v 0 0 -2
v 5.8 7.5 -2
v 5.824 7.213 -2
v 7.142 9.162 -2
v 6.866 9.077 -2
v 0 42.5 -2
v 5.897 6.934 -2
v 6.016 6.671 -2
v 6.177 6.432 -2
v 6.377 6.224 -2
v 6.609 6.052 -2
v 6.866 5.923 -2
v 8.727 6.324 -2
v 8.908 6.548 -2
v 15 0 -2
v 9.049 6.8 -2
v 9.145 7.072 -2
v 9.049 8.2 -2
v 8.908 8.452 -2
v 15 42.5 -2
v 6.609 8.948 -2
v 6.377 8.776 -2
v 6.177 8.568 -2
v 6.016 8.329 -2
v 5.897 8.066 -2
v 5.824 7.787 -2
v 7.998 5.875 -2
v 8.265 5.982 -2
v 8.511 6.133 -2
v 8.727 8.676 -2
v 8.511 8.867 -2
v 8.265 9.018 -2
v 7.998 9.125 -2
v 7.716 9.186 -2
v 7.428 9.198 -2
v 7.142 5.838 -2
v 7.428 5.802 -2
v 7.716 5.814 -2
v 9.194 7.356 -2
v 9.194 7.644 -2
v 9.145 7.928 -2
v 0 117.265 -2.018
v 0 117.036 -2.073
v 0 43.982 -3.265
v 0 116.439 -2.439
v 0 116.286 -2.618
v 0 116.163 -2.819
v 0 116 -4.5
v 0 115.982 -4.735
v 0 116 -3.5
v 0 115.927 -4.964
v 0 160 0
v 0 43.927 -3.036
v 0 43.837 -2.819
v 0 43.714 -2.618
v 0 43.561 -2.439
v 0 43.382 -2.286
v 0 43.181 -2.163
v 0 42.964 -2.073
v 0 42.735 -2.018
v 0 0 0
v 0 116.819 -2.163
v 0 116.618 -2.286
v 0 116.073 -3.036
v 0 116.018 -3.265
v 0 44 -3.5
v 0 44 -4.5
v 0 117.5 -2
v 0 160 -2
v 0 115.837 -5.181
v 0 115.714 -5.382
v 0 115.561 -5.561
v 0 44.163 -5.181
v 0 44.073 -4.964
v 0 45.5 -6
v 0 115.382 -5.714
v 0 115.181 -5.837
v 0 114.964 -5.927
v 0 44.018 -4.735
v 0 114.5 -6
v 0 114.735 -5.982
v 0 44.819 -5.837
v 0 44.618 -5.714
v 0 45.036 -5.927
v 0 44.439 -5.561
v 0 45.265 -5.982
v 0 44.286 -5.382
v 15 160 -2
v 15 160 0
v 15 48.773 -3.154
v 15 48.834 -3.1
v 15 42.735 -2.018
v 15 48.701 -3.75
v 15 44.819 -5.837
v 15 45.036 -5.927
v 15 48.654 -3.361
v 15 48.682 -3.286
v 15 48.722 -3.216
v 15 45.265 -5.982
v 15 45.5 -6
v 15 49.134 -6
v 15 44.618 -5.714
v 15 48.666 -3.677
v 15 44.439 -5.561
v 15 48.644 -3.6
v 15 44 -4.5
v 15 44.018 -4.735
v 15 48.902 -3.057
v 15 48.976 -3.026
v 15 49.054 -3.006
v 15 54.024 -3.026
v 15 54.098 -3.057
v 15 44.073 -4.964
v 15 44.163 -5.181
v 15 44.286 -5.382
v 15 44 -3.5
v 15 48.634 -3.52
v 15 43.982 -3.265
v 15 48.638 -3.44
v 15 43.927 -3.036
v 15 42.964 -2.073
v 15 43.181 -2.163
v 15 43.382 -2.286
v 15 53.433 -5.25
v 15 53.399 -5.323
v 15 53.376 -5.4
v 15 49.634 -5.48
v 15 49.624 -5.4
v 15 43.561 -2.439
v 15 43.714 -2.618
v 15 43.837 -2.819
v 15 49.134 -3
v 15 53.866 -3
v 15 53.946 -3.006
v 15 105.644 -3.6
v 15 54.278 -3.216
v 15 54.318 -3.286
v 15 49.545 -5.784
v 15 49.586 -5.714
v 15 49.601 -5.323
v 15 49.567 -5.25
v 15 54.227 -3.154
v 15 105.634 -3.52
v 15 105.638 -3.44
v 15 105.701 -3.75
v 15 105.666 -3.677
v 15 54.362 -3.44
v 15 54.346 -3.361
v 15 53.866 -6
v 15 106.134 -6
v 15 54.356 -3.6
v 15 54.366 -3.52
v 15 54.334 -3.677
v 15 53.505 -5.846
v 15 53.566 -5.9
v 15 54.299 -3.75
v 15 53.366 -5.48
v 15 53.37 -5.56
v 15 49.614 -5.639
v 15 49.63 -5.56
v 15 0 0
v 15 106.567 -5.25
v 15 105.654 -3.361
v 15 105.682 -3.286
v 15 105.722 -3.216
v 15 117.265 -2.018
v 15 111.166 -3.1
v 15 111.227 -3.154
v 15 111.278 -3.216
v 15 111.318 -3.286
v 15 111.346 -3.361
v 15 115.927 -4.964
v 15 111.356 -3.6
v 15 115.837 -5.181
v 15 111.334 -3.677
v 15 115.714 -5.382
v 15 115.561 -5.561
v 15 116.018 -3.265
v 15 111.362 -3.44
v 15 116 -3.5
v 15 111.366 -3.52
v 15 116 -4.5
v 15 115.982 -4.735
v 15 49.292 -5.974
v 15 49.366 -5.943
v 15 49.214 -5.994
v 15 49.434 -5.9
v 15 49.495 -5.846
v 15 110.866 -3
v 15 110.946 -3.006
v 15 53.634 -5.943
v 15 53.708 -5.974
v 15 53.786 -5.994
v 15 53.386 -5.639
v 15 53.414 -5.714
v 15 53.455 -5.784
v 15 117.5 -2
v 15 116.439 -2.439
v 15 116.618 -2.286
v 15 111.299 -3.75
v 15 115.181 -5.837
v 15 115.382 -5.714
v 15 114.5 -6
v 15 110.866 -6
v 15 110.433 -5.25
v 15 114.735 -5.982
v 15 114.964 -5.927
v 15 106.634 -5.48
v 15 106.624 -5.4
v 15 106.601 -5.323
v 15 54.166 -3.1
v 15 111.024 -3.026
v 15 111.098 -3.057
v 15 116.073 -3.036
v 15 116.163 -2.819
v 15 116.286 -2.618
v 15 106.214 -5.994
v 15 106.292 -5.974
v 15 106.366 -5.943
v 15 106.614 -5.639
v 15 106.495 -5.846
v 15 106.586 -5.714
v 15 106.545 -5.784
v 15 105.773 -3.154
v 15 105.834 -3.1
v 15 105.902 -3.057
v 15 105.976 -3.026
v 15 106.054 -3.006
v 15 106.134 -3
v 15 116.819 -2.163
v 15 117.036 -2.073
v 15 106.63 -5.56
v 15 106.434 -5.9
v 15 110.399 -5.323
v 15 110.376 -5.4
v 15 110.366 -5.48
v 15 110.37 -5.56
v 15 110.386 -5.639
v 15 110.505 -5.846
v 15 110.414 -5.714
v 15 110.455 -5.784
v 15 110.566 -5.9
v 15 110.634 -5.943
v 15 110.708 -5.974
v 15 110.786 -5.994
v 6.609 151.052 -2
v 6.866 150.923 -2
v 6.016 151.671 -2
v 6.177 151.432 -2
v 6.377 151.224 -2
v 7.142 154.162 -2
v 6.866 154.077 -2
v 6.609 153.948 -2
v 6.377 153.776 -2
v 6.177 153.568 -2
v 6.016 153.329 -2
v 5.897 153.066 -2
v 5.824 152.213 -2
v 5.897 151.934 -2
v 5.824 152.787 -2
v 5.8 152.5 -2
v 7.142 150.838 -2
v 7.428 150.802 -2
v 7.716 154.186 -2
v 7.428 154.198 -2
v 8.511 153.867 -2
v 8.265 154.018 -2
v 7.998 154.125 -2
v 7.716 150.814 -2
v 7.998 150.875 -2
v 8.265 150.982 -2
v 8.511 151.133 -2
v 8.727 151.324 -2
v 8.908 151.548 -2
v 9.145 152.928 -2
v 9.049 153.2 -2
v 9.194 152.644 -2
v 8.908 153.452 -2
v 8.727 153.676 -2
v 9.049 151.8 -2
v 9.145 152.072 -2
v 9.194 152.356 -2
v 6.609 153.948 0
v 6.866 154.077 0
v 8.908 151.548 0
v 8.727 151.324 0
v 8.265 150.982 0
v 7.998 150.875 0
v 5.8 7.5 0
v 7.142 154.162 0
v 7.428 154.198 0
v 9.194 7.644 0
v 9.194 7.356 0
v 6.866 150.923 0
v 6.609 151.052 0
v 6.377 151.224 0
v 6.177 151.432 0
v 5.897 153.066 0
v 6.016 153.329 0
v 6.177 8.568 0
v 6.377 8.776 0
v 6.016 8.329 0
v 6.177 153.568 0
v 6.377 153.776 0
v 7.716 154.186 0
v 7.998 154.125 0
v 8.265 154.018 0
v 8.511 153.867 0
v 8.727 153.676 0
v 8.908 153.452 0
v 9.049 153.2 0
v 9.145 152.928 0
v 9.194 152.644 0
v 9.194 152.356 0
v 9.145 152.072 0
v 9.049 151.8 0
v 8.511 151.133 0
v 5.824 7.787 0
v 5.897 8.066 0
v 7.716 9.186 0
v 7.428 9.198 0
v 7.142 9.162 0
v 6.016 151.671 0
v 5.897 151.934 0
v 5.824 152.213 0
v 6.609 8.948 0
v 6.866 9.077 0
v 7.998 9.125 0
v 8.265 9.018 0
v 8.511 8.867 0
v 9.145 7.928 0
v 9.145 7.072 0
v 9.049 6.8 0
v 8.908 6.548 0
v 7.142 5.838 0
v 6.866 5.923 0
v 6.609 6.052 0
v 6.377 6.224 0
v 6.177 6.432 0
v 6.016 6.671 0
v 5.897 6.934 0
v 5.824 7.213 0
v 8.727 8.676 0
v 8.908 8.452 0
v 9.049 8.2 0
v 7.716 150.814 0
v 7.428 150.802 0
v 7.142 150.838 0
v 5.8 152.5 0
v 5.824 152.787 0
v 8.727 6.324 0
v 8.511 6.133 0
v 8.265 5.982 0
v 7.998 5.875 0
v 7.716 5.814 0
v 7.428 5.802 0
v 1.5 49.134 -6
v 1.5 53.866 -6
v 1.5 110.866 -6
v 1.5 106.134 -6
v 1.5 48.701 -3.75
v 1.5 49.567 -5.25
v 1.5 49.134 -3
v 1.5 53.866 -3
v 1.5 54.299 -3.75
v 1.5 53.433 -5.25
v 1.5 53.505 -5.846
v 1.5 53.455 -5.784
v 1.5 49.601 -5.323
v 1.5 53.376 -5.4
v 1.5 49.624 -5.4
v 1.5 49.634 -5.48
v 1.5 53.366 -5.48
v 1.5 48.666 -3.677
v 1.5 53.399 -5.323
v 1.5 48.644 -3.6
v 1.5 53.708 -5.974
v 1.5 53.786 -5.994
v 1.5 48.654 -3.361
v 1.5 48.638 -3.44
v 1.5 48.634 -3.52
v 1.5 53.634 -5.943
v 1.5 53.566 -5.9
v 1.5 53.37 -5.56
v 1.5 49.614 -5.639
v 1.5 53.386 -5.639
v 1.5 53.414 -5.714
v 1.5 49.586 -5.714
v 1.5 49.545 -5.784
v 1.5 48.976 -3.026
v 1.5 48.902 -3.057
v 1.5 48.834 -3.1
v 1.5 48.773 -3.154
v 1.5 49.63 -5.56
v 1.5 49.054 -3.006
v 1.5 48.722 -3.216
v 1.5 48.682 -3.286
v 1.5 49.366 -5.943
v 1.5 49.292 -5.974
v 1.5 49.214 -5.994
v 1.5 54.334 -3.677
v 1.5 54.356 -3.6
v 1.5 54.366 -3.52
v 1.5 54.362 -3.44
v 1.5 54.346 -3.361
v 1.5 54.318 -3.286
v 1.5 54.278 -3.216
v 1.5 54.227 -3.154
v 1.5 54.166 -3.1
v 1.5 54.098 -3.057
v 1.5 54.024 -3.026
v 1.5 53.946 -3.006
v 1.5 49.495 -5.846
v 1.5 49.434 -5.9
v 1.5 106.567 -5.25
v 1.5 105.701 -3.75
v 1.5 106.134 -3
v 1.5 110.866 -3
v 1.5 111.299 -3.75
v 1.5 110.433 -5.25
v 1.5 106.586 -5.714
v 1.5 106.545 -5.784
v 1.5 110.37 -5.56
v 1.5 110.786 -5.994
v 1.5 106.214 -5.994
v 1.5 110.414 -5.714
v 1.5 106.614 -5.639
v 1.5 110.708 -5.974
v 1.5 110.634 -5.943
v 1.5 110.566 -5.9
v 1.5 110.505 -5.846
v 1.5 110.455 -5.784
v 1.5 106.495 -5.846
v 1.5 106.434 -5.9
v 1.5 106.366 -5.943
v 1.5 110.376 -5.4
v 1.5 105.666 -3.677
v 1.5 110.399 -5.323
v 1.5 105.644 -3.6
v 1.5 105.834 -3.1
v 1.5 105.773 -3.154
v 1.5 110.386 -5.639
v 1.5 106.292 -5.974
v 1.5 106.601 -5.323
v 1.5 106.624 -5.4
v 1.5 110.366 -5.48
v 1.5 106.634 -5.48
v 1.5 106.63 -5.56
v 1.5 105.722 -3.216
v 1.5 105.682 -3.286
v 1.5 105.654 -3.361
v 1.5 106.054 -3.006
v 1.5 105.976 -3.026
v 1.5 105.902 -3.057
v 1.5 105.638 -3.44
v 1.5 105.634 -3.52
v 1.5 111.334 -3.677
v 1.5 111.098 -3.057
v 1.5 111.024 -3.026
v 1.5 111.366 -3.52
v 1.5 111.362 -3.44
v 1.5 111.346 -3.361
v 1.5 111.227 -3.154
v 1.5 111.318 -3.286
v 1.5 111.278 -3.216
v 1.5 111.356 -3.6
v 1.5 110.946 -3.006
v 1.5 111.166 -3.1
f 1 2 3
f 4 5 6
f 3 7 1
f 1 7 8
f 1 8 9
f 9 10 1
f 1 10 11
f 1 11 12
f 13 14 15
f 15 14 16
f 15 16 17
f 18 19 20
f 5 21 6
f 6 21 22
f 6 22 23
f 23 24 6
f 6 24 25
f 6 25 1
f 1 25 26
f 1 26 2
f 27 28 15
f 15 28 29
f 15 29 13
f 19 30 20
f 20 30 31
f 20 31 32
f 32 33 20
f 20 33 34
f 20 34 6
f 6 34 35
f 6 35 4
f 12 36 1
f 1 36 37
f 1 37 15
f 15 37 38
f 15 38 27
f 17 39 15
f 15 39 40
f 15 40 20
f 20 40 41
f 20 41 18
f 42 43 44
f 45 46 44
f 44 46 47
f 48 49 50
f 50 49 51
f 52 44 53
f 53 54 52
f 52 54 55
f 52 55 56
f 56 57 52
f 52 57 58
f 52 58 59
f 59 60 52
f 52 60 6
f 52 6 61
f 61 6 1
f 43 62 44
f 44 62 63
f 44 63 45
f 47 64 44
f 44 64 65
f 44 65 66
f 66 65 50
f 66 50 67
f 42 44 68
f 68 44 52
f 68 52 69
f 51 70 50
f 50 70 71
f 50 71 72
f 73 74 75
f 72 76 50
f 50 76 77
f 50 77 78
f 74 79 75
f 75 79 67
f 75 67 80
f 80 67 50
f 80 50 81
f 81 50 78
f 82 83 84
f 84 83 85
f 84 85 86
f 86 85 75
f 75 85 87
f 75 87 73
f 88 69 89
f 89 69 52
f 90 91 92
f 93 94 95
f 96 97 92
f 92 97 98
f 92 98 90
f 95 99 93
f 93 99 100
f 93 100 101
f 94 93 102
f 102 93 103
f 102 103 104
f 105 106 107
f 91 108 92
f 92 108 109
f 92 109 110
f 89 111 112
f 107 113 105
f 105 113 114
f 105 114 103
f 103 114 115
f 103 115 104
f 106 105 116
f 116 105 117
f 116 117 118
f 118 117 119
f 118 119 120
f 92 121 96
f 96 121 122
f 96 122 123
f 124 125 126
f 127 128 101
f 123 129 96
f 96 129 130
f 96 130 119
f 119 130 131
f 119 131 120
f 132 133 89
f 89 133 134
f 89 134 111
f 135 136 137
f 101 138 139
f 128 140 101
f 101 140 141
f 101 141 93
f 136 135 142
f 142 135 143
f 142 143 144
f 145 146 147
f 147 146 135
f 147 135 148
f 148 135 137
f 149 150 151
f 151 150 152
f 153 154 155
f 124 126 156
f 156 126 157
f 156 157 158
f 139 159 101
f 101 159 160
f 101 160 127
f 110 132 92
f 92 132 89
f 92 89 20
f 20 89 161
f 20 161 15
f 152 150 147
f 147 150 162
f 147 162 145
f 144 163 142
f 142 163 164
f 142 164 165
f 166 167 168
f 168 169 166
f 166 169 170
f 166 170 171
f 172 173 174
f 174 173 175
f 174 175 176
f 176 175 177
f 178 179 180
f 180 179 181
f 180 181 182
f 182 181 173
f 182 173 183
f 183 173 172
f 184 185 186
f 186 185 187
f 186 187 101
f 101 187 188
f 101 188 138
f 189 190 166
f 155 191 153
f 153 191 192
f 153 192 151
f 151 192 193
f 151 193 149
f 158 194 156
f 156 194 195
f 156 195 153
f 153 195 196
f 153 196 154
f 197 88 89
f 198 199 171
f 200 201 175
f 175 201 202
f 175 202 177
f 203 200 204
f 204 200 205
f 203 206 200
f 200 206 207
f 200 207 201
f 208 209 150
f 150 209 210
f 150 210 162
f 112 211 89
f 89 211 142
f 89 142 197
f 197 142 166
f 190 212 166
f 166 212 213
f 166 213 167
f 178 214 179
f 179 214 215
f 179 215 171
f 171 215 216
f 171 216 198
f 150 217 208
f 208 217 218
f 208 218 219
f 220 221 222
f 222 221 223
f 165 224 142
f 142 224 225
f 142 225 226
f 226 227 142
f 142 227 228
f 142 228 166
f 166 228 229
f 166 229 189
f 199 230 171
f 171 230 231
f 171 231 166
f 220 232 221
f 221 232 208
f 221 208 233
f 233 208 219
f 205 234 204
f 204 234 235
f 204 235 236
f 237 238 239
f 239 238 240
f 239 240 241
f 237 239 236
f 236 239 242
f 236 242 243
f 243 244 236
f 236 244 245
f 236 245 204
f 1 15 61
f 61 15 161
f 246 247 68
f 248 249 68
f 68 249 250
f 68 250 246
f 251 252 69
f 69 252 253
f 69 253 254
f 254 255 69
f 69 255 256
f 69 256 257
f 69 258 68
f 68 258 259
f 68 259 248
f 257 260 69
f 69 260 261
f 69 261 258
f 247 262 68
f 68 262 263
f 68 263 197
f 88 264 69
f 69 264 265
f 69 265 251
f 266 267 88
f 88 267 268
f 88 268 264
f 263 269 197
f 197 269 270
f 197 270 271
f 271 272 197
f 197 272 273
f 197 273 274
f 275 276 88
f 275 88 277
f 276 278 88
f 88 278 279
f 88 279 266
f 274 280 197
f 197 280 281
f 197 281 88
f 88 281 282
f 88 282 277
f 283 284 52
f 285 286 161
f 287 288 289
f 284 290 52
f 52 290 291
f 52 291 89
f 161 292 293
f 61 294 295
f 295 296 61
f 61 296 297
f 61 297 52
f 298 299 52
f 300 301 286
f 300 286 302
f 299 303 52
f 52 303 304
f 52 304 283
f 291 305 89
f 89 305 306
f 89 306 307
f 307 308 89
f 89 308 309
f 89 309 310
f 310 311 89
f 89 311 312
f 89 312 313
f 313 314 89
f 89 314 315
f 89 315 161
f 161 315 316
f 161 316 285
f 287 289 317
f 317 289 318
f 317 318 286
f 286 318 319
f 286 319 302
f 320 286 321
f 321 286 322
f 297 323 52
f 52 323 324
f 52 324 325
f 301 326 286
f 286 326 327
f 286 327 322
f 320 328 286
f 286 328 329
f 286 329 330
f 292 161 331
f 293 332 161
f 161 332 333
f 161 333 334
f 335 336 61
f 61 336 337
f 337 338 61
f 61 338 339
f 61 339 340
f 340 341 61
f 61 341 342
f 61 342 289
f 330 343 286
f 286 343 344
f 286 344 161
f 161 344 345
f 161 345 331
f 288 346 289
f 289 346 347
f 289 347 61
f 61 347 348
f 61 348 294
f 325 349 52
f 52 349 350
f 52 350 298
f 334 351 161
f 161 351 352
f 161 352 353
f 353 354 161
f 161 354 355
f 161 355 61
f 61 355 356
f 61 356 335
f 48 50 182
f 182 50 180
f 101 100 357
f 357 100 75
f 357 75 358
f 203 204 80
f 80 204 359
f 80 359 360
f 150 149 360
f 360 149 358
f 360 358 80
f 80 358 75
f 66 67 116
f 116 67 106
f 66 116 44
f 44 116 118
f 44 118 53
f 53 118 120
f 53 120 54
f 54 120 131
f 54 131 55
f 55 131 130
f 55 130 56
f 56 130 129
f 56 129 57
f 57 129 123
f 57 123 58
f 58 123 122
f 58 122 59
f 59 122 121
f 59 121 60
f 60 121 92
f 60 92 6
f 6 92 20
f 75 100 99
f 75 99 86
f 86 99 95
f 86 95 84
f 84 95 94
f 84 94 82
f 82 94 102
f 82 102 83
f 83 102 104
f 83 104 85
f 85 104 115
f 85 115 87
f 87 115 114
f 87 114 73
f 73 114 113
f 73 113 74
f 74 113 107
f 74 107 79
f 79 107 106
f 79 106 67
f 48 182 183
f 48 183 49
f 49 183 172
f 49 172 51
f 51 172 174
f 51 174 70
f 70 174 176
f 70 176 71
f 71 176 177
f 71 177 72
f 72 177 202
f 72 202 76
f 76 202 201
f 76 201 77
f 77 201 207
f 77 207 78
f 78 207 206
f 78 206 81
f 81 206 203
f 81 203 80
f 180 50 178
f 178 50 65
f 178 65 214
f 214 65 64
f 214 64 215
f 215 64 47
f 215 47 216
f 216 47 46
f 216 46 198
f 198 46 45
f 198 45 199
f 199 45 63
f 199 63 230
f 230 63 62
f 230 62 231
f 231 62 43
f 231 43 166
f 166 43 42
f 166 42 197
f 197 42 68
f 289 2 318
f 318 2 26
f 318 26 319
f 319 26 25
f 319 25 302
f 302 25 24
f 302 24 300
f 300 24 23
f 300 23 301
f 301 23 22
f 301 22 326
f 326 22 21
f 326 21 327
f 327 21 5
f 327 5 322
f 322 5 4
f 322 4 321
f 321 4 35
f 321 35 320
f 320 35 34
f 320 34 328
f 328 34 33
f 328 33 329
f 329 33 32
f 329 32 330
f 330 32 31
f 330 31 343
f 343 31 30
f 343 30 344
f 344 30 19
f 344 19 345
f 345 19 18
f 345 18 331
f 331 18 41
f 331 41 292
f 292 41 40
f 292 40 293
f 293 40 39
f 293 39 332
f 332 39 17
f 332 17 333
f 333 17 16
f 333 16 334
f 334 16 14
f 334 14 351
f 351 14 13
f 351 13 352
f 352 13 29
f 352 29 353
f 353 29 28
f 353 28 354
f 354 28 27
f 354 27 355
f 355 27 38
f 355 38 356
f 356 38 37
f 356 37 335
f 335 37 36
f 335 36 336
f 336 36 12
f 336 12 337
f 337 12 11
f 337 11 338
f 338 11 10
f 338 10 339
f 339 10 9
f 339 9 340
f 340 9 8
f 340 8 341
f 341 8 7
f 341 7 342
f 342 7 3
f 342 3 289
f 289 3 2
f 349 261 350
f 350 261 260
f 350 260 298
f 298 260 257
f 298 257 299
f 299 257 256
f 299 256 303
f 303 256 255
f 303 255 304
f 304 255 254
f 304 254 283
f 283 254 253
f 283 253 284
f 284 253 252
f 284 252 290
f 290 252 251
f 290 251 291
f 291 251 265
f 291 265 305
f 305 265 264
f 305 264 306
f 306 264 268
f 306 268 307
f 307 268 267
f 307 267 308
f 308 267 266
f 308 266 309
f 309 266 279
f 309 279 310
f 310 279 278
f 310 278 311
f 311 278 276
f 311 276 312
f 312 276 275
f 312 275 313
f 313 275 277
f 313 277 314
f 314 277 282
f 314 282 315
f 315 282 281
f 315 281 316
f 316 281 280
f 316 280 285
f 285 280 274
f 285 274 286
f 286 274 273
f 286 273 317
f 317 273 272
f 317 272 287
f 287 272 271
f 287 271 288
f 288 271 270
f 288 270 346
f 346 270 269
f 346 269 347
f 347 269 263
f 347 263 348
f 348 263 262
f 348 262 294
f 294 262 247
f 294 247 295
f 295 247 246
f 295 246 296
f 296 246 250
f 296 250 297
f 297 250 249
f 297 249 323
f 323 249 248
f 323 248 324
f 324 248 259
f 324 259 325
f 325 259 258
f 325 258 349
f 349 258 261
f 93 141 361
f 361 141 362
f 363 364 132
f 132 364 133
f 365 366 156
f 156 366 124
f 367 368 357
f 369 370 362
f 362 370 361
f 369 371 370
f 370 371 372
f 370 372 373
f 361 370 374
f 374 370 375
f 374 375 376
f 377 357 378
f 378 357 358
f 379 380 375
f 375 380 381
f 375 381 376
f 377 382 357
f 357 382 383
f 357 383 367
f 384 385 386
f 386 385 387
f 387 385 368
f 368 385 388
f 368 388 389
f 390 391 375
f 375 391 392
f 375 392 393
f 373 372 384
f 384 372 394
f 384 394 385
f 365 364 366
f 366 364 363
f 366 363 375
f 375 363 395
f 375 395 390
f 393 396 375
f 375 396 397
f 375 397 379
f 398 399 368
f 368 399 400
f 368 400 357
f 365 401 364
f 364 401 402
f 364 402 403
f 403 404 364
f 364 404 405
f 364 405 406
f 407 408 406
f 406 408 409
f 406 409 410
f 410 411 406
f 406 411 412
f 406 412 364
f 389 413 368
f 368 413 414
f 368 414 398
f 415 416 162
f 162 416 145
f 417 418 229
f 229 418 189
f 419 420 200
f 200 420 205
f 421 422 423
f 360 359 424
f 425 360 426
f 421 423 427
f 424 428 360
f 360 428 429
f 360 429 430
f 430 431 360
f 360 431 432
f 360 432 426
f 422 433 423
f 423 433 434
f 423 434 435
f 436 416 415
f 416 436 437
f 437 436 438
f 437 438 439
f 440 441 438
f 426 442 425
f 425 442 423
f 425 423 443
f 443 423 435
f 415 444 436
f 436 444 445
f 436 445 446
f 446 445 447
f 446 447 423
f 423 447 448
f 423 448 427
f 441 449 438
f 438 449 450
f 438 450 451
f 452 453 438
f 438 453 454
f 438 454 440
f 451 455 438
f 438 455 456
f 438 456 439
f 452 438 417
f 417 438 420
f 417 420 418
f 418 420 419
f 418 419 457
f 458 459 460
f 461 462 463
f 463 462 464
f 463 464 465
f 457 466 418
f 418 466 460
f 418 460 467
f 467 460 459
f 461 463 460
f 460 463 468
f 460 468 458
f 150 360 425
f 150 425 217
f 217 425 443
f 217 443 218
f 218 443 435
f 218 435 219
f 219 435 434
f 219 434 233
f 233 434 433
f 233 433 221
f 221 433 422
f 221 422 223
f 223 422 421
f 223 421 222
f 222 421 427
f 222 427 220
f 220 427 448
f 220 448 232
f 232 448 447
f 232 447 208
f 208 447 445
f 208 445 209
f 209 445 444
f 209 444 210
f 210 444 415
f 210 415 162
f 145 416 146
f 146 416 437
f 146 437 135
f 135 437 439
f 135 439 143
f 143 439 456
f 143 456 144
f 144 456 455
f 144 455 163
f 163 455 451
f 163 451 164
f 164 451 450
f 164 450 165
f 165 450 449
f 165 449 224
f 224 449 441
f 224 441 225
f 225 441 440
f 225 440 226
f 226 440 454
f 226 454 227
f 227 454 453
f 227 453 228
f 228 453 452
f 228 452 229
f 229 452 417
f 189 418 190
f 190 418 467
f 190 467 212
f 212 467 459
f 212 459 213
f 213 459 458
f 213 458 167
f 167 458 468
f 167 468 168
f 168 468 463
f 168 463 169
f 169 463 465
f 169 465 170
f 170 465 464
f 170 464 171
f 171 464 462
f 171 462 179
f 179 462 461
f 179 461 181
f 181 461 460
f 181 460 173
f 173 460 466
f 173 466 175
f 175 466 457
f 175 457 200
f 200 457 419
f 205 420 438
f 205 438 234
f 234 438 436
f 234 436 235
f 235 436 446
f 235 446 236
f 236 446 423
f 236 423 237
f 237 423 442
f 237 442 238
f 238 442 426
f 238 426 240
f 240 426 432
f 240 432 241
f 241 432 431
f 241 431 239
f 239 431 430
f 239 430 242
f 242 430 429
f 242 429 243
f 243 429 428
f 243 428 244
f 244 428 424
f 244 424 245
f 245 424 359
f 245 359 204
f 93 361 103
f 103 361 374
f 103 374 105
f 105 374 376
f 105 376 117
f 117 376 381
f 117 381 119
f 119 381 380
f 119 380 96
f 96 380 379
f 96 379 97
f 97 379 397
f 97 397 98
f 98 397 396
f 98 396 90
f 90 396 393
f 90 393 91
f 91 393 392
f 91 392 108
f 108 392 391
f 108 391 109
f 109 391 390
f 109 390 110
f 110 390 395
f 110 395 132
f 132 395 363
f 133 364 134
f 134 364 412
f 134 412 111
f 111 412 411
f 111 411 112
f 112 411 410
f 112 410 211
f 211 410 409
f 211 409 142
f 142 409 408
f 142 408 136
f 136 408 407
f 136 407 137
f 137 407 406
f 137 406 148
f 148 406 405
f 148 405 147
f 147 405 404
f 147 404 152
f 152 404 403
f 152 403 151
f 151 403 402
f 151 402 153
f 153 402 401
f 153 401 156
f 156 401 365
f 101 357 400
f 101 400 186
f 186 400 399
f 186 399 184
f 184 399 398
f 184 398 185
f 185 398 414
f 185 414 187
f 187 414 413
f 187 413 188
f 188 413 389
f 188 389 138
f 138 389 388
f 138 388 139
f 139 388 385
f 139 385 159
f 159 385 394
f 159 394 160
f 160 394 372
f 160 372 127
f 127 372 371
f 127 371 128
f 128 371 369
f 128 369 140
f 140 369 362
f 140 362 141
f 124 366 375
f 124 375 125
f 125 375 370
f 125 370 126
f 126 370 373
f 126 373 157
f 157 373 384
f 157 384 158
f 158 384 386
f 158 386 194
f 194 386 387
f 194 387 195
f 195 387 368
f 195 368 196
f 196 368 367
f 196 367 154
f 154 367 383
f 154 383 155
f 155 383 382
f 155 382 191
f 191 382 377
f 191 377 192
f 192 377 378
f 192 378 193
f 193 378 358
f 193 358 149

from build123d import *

# Parameters (mm, degrees)
SKETCH_1_W          = 15
SKETCH_1_H          = 160
EXTRUDE_1_DEPTH     = 2
SKETCH_4_W          = 6
SKETCH_4_H          = 15
EXTRUDE_2_DEPTH     = 15
FILLET_3_R          = 1.5
HOLE_WIZARD_M31_D   = 3.4
CUT_EXTRUDE_2_DEPTH = 13.5
FILLET_4_R          = 0.5
SKETCH_8_W          = 6
SKETCH_8_H          = 45
EXTRUDE_3_DEPTH     = 15


with BuildPart() as part:
    # Эскиз1 → Бобышка-Вытянуть1 (new body)
    with BuildSketch(Plane.XY):
        with Locations((7.5, 80)):
            Rectangle(SKETCH_1_W, SKETCH_1_H)
    extrude(amount=-EXTRUDE_1_DEPTH)

    # Эскиз4 → Бобышка-Вытянуть2 (add)
    with BuildSketch(Plane(origin=(15, 0, 0), x_dir=(0, 0, -1), z_dir=(1, 0, 0))):
        with Locations((3, 108.5)):
            Rectangle(SKETCH_4_W, SKETCH_4_H)
        with Locations((3, 51.5)):
            Rectangle(SKETCH_4_W, SKETCH_4_H)
    extrude(amount=-EXTRUDE_2_DEPTH)

    # Скругление3
    fillet_3_edges = [part.edges().sort_by_distance(p)[0] for p in [
        (7.5, 101, -6),
        (7.5, 101, -2),
        (7.5, 116, -6),
        (7.5, 116, -2),
        (7.5, 44, -6),
        (7.5, 44, -2),
        (7.5, 59, -6),
        (7.5, 59, -2),
    ]]
    fillet(fillet_3_edges, radius=FILLET_3_R)

    # Отверстие с зазором M31 (through all)
    with Locations(Plane(origin=(0, 0, -2), x_dir=(-1, 0, 0), z_dir=(0, 0, -1))):
        with Locations((-7.5, 152.5), (-7.5, 7.5)):
            Hole(HOLE_WIZARD_M31_D / 2)

    # Эскиз3 → Вырез-Вытянуть2 (cut)
    with BuildSketch(Plane(origin=(15, 0, 0), x_dir=(0, 0, -1), z_dir=(1, 0, 0))):
        Polygon((6, 110), (3, 111.732050808), (3, 105.267949192), (6, 107), align=None)
        Polygon((6, 53), (3, 54.732050808), (3, 48.267949192), (6, 50), align=None)
    extrude(amount=-CUT_EXTRUDE_2_DEPTH, mode=Mode.SUBTRACT)

    # Скругление4
    fillet_4_edges = [part.edges().sort_by_distance(p)[0] for p in [
        (8.25, 110, -6),
        (8.25, 107, -6),
        (8.25, 105.267949192, -3),
        (8.25, 111.732050808, -3),
        (8.25, 53, -6),
        (8.25, 50, -6),
        (8.25, 48.267949192, -3),
        (8.25, 54.732050808, -3),
    ]]
    fillet(fillet_4_edges, radius=FILLET_4_R)

    # Эскиз8 → Бобышка-Вытянуть3 (add)
    with BuildSketch(Plane(origin=(15, 0, 0), x_dir=(0, 0, -1), z_dir=(1, 0, 0))):
        with Locations((3, 80)):
            Rectangle(SKETCH_8_W, SKETCH_8_H)
    extrude(amount=-EXTRUDE_3_DEPTH)


solid = part.part
